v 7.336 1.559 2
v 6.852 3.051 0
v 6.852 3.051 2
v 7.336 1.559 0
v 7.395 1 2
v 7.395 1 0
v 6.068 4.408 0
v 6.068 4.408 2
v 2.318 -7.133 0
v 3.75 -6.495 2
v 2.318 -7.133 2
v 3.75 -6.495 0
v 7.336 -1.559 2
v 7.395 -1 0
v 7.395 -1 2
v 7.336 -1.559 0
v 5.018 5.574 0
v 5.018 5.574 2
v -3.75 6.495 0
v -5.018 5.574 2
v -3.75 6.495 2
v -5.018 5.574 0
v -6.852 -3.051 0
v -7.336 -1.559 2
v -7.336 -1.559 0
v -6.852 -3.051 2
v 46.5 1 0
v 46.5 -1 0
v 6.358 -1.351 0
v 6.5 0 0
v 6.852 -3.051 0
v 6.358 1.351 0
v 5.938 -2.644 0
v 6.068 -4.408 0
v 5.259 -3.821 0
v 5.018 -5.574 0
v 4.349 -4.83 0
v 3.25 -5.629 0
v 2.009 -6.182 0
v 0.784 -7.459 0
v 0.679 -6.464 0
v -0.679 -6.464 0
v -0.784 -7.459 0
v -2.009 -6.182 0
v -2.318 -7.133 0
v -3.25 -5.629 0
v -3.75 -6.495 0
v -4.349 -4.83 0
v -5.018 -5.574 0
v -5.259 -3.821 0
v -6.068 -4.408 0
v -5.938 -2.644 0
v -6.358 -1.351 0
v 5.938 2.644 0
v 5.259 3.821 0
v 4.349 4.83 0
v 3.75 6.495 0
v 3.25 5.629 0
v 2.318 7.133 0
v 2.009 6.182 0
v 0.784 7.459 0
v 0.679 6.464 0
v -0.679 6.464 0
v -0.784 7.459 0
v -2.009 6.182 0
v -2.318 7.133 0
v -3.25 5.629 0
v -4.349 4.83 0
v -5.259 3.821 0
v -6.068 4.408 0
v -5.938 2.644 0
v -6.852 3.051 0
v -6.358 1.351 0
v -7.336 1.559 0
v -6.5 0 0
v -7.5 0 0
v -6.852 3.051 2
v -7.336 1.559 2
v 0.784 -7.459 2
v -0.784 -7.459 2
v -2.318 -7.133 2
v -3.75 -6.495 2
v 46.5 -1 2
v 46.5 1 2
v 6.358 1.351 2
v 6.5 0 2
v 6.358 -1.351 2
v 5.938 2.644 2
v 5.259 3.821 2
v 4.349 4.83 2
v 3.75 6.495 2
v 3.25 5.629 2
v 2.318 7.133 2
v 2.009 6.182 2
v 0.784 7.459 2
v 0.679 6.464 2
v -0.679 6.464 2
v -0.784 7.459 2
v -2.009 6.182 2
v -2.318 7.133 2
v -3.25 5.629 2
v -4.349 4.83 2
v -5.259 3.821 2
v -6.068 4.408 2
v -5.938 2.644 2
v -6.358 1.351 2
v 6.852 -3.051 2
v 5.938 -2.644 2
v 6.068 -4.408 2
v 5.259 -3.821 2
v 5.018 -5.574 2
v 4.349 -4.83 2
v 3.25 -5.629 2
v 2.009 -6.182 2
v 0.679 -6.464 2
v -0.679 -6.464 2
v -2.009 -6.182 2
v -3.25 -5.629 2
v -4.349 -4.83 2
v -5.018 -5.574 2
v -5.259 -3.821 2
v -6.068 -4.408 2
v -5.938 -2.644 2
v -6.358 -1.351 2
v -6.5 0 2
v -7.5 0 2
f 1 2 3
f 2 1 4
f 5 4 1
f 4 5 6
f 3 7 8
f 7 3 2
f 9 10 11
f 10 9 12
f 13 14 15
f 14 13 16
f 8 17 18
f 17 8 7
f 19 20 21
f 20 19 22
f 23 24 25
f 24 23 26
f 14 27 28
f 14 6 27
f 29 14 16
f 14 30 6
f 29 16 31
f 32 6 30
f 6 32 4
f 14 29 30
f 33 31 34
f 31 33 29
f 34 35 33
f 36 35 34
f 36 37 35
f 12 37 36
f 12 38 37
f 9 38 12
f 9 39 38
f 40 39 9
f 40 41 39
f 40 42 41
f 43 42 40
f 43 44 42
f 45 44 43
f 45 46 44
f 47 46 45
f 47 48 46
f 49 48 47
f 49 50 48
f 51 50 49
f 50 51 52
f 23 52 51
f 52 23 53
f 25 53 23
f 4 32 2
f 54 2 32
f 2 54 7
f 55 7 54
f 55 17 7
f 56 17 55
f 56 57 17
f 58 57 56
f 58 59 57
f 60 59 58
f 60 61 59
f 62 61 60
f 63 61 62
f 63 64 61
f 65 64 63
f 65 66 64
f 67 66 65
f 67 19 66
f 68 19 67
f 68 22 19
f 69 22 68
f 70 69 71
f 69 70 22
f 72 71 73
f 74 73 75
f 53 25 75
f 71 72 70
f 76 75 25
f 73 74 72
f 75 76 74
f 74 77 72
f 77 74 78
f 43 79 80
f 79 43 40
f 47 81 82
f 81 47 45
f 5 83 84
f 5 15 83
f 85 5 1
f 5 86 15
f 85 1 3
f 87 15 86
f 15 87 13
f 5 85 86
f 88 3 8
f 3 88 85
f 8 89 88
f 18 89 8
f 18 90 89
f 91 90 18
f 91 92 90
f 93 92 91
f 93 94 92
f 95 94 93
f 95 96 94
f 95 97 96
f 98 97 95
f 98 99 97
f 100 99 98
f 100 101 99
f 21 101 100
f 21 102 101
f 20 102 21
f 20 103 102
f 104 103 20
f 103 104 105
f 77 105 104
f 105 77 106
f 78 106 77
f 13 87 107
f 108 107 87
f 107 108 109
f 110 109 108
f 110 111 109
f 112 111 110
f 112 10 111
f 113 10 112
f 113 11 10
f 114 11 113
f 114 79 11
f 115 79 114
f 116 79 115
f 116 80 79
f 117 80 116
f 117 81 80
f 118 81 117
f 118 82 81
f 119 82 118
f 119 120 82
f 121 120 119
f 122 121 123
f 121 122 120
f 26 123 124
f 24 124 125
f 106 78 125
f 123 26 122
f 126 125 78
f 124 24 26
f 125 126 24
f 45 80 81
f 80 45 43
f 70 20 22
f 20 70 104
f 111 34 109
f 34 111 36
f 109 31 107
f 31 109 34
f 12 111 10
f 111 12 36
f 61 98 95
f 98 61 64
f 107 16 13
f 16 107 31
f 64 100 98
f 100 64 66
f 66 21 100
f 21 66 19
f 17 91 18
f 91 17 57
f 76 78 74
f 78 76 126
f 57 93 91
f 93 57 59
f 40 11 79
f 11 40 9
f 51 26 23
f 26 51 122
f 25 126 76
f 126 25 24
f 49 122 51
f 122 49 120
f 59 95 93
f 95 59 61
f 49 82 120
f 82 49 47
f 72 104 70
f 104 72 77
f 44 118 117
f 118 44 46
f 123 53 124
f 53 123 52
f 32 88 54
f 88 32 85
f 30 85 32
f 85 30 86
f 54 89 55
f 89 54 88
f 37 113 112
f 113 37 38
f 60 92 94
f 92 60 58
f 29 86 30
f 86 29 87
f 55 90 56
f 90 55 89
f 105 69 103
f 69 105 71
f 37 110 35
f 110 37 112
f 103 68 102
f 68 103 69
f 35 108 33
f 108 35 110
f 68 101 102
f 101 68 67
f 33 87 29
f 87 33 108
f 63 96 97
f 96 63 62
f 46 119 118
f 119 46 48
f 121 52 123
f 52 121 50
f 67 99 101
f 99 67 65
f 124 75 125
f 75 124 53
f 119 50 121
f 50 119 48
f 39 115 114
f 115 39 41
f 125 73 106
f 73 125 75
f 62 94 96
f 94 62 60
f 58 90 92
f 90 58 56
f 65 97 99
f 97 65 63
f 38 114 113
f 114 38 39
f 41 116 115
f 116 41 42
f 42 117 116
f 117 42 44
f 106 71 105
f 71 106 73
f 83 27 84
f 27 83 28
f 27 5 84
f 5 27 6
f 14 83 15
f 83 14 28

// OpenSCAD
$fn = 30;
diameter = 15;
thickness = 2;

union()
{
    difference()
    {
        cylinder(d=diameter, h=thickness);
        cylinder(d=diameter - thickness, h=thickness);
    }
    translate([diameter / 2 - thickness / 2, -thickness / 2, 0]) cube([40, thickness, thickness]);
}
